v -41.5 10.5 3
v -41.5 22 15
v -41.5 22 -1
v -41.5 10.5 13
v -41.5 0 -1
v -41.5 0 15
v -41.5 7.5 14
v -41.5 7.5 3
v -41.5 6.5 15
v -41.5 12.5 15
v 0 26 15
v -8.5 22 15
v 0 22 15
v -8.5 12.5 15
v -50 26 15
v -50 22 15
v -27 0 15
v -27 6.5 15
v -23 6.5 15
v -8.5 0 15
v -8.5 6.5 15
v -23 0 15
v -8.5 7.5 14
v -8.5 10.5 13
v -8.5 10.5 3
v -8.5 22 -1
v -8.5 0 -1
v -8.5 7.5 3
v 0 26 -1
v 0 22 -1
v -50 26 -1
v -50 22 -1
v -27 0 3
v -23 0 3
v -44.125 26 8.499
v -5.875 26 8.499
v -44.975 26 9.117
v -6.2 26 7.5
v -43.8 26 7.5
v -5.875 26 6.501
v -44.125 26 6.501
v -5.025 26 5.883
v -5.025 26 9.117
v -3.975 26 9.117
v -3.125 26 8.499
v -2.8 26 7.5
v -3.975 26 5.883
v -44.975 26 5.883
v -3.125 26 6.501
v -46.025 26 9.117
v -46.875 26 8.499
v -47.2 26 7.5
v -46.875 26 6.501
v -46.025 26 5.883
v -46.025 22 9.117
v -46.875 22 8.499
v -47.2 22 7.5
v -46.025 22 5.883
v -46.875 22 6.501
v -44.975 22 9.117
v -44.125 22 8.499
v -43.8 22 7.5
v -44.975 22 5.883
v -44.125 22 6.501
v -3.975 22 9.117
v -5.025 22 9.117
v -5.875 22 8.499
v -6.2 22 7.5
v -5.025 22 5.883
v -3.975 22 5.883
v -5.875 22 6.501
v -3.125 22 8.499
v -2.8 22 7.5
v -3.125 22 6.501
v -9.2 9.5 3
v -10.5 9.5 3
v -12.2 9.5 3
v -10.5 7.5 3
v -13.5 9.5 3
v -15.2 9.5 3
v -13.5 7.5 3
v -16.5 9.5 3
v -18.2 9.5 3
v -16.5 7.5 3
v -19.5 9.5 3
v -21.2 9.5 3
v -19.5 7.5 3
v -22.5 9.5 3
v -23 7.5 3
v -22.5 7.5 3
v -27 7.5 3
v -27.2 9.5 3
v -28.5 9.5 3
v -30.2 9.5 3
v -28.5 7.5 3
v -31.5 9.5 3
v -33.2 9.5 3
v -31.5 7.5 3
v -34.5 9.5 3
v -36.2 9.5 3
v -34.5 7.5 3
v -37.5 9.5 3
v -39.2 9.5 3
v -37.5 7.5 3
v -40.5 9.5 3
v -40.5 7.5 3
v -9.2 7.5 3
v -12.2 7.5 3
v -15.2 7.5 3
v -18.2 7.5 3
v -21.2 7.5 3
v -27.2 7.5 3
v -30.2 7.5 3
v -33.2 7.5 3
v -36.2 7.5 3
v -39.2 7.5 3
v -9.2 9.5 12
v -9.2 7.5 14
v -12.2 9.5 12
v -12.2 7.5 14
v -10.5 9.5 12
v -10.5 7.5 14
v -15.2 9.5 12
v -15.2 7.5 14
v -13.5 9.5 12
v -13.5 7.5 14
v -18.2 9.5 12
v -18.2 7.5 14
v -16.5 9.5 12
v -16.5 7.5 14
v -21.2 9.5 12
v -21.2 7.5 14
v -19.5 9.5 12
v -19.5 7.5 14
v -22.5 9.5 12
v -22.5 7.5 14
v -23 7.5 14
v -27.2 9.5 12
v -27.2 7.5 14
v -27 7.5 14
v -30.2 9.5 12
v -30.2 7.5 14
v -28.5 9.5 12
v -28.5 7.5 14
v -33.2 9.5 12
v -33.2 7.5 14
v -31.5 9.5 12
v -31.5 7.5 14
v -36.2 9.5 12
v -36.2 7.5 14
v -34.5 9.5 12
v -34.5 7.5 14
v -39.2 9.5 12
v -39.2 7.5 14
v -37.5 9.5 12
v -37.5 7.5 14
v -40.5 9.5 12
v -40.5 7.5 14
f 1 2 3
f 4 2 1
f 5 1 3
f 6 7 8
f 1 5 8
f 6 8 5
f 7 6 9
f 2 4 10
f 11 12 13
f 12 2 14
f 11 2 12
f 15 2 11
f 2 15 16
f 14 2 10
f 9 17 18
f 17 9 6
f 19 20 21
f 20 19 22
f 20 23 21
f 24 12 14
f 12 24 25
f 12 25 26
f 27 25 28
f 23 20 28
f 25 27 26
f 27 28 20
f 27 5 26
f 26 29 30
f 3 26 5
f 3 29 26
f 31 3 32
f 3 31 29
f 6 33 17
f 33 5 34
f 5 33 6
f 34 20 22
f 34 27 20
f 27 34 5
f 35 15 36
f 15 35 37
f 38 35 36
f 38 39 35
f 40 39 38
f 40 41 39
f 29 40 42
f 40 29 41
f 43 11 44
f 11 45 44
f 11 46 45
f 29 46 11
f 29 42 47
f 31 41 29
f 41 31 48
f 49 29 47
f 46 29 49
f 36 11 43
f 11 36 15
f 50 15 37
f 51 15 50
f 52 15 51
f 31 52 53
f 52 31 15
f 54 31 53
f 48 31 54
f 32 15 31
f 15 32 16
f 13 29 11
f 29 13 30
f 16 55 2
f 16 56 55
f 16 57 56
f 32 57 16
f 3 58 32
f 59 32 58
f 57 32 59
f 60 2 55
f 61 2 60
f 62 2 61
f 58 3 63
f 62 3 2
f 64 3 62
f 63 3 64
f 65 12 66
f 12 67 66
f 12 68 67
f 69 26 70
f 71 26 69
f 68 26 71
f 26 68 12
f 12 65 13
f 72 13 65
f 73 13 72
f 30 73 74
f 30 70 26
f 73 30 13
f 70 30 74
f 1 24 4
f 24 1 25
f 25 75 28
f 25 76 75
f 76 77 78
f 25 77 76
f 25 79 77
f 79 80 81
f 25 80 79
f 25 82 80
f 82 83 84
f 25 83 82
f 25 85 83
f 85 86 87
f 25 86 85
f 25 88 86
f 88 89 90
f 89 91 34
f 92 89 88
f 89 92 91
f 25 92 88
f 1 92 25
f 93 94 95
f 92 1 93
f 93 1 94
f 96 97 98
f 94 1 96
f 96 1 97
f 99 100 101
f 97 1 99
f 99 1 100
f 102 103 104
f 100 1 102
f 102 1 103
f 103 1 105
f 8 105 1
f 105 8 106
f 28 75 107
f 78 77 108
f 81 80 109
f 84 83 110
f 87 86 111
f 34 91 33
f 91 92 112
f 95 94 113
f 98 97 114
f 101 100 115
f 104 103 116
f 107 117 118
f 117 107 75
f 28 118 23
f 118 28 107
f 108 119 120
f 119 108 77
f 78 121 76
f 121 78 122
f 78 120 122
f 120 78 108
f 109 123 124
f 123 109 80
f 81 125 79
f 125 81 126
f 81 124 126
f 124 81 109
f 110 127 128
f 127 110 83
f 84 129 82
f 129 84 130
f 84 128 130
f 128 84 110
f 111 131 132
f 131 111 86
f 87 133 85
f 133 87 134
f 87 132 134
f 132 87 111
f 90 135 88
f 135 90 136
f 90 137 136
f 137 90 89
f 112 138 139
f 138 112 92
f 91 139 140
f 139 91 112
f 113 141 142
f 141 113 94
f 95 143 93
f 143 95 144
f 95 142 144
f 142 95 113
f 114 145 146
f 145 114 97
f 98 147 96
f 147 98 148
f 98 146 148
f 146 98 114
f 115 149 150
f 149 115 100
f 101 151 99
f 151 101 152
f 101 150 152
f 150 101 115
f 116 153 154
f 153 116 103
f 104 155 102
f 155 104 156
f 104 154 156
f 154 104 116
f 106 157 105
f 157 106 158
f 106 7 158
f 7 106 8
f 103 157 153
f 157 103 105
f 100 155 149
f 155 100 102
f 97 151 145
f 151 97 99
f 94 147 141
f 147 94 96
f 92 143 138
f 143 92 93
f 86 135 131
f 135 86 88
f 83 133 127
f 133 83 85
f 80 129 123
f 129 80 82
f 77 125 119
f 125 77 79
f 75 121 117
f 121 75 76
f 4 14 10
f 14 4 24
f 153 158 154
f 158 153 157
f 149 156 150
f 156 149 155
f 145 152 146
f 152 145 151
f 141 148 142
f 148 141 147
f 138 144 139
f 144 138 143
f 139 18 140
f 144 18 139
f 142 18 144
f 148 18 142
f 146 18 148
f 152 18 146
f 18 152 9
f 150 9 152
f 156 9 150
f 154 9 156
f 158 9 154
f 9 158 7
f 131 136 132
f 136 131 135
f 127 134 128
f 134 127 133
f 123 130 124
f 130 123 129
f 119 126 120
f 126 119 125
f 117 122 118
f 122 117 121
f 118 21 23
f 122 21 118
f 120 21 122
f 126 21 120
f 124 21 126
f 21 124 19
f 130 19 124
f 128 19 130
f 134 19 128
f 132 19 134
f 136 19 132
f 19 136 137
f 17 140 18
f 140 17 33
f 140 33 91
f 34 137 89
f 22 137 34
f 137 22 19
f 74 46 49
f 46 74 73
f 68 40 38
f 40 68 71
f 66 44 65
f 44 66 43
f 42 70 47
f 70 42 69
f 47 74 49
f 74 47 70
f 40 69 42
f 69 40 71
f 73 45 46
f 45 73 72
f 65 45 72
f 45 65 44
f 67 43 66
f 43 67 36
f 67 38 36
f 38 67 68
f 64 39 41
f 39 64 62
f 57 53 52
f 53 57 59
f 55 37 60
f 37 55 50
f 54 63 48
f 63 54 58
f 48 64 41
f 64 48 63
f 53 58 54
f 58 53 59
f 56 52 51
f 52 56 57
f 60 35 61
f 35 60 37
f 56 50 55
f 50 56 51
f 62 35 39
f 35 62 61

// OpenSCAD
// PRUSA iteration3
// Y belt holder
// GNU GPL v3
// Josef Průša <iam@josefprusa.cz> and contributors
// http://www.reprap.org/wiki/Prusa_Mendel
// http://prusamendel.org

module y_belt_holder_base()
{
  translate([-33-8.5,0,-1]) cube([33,15,16]);
  translate([-33-8.5,11,-1]) cube([33,15,16]);
  translate([-50,22,-1]) cube([50,4,16]);
}

module y_belt_holder_beltcut()
{
  position_tweak=-0.2;
  // Belt slit
  translate([-66,-0.5+10,3]) cube([67,1,15]);
  // Smooth insert cutout
  translate([-66,-0.5+10,12]) rotate([45,0,0]) cube([67,15,15]);
  // Individual teeth
  for (i=[0 : 23]) {
    translate([0-i*3+position_tweak,-0.5+8,3]) cube([1.7,3,15]);
  }
  // Middle opening
  translate([-2-25,-1,3]) cube([4,11,15]);
}

module y_belt_holder_holes()
{
  translate([-4.5,0,7.5]) rotate([-90,0,0]) cylinder(h=30, r=1.7, $fn=10);
  translate([-45.5,0,7.5]) rotate([-90,0,0]) cylinder(h=30, r=1.7, $fn=10);
}

// Final part
module y_belt_holder()
{
  difference() {
    y_belt_holder_base();
    y_belt_holder_beltcut();
    y_belt_holder_holes();
  }
}

y_belt_holder();
